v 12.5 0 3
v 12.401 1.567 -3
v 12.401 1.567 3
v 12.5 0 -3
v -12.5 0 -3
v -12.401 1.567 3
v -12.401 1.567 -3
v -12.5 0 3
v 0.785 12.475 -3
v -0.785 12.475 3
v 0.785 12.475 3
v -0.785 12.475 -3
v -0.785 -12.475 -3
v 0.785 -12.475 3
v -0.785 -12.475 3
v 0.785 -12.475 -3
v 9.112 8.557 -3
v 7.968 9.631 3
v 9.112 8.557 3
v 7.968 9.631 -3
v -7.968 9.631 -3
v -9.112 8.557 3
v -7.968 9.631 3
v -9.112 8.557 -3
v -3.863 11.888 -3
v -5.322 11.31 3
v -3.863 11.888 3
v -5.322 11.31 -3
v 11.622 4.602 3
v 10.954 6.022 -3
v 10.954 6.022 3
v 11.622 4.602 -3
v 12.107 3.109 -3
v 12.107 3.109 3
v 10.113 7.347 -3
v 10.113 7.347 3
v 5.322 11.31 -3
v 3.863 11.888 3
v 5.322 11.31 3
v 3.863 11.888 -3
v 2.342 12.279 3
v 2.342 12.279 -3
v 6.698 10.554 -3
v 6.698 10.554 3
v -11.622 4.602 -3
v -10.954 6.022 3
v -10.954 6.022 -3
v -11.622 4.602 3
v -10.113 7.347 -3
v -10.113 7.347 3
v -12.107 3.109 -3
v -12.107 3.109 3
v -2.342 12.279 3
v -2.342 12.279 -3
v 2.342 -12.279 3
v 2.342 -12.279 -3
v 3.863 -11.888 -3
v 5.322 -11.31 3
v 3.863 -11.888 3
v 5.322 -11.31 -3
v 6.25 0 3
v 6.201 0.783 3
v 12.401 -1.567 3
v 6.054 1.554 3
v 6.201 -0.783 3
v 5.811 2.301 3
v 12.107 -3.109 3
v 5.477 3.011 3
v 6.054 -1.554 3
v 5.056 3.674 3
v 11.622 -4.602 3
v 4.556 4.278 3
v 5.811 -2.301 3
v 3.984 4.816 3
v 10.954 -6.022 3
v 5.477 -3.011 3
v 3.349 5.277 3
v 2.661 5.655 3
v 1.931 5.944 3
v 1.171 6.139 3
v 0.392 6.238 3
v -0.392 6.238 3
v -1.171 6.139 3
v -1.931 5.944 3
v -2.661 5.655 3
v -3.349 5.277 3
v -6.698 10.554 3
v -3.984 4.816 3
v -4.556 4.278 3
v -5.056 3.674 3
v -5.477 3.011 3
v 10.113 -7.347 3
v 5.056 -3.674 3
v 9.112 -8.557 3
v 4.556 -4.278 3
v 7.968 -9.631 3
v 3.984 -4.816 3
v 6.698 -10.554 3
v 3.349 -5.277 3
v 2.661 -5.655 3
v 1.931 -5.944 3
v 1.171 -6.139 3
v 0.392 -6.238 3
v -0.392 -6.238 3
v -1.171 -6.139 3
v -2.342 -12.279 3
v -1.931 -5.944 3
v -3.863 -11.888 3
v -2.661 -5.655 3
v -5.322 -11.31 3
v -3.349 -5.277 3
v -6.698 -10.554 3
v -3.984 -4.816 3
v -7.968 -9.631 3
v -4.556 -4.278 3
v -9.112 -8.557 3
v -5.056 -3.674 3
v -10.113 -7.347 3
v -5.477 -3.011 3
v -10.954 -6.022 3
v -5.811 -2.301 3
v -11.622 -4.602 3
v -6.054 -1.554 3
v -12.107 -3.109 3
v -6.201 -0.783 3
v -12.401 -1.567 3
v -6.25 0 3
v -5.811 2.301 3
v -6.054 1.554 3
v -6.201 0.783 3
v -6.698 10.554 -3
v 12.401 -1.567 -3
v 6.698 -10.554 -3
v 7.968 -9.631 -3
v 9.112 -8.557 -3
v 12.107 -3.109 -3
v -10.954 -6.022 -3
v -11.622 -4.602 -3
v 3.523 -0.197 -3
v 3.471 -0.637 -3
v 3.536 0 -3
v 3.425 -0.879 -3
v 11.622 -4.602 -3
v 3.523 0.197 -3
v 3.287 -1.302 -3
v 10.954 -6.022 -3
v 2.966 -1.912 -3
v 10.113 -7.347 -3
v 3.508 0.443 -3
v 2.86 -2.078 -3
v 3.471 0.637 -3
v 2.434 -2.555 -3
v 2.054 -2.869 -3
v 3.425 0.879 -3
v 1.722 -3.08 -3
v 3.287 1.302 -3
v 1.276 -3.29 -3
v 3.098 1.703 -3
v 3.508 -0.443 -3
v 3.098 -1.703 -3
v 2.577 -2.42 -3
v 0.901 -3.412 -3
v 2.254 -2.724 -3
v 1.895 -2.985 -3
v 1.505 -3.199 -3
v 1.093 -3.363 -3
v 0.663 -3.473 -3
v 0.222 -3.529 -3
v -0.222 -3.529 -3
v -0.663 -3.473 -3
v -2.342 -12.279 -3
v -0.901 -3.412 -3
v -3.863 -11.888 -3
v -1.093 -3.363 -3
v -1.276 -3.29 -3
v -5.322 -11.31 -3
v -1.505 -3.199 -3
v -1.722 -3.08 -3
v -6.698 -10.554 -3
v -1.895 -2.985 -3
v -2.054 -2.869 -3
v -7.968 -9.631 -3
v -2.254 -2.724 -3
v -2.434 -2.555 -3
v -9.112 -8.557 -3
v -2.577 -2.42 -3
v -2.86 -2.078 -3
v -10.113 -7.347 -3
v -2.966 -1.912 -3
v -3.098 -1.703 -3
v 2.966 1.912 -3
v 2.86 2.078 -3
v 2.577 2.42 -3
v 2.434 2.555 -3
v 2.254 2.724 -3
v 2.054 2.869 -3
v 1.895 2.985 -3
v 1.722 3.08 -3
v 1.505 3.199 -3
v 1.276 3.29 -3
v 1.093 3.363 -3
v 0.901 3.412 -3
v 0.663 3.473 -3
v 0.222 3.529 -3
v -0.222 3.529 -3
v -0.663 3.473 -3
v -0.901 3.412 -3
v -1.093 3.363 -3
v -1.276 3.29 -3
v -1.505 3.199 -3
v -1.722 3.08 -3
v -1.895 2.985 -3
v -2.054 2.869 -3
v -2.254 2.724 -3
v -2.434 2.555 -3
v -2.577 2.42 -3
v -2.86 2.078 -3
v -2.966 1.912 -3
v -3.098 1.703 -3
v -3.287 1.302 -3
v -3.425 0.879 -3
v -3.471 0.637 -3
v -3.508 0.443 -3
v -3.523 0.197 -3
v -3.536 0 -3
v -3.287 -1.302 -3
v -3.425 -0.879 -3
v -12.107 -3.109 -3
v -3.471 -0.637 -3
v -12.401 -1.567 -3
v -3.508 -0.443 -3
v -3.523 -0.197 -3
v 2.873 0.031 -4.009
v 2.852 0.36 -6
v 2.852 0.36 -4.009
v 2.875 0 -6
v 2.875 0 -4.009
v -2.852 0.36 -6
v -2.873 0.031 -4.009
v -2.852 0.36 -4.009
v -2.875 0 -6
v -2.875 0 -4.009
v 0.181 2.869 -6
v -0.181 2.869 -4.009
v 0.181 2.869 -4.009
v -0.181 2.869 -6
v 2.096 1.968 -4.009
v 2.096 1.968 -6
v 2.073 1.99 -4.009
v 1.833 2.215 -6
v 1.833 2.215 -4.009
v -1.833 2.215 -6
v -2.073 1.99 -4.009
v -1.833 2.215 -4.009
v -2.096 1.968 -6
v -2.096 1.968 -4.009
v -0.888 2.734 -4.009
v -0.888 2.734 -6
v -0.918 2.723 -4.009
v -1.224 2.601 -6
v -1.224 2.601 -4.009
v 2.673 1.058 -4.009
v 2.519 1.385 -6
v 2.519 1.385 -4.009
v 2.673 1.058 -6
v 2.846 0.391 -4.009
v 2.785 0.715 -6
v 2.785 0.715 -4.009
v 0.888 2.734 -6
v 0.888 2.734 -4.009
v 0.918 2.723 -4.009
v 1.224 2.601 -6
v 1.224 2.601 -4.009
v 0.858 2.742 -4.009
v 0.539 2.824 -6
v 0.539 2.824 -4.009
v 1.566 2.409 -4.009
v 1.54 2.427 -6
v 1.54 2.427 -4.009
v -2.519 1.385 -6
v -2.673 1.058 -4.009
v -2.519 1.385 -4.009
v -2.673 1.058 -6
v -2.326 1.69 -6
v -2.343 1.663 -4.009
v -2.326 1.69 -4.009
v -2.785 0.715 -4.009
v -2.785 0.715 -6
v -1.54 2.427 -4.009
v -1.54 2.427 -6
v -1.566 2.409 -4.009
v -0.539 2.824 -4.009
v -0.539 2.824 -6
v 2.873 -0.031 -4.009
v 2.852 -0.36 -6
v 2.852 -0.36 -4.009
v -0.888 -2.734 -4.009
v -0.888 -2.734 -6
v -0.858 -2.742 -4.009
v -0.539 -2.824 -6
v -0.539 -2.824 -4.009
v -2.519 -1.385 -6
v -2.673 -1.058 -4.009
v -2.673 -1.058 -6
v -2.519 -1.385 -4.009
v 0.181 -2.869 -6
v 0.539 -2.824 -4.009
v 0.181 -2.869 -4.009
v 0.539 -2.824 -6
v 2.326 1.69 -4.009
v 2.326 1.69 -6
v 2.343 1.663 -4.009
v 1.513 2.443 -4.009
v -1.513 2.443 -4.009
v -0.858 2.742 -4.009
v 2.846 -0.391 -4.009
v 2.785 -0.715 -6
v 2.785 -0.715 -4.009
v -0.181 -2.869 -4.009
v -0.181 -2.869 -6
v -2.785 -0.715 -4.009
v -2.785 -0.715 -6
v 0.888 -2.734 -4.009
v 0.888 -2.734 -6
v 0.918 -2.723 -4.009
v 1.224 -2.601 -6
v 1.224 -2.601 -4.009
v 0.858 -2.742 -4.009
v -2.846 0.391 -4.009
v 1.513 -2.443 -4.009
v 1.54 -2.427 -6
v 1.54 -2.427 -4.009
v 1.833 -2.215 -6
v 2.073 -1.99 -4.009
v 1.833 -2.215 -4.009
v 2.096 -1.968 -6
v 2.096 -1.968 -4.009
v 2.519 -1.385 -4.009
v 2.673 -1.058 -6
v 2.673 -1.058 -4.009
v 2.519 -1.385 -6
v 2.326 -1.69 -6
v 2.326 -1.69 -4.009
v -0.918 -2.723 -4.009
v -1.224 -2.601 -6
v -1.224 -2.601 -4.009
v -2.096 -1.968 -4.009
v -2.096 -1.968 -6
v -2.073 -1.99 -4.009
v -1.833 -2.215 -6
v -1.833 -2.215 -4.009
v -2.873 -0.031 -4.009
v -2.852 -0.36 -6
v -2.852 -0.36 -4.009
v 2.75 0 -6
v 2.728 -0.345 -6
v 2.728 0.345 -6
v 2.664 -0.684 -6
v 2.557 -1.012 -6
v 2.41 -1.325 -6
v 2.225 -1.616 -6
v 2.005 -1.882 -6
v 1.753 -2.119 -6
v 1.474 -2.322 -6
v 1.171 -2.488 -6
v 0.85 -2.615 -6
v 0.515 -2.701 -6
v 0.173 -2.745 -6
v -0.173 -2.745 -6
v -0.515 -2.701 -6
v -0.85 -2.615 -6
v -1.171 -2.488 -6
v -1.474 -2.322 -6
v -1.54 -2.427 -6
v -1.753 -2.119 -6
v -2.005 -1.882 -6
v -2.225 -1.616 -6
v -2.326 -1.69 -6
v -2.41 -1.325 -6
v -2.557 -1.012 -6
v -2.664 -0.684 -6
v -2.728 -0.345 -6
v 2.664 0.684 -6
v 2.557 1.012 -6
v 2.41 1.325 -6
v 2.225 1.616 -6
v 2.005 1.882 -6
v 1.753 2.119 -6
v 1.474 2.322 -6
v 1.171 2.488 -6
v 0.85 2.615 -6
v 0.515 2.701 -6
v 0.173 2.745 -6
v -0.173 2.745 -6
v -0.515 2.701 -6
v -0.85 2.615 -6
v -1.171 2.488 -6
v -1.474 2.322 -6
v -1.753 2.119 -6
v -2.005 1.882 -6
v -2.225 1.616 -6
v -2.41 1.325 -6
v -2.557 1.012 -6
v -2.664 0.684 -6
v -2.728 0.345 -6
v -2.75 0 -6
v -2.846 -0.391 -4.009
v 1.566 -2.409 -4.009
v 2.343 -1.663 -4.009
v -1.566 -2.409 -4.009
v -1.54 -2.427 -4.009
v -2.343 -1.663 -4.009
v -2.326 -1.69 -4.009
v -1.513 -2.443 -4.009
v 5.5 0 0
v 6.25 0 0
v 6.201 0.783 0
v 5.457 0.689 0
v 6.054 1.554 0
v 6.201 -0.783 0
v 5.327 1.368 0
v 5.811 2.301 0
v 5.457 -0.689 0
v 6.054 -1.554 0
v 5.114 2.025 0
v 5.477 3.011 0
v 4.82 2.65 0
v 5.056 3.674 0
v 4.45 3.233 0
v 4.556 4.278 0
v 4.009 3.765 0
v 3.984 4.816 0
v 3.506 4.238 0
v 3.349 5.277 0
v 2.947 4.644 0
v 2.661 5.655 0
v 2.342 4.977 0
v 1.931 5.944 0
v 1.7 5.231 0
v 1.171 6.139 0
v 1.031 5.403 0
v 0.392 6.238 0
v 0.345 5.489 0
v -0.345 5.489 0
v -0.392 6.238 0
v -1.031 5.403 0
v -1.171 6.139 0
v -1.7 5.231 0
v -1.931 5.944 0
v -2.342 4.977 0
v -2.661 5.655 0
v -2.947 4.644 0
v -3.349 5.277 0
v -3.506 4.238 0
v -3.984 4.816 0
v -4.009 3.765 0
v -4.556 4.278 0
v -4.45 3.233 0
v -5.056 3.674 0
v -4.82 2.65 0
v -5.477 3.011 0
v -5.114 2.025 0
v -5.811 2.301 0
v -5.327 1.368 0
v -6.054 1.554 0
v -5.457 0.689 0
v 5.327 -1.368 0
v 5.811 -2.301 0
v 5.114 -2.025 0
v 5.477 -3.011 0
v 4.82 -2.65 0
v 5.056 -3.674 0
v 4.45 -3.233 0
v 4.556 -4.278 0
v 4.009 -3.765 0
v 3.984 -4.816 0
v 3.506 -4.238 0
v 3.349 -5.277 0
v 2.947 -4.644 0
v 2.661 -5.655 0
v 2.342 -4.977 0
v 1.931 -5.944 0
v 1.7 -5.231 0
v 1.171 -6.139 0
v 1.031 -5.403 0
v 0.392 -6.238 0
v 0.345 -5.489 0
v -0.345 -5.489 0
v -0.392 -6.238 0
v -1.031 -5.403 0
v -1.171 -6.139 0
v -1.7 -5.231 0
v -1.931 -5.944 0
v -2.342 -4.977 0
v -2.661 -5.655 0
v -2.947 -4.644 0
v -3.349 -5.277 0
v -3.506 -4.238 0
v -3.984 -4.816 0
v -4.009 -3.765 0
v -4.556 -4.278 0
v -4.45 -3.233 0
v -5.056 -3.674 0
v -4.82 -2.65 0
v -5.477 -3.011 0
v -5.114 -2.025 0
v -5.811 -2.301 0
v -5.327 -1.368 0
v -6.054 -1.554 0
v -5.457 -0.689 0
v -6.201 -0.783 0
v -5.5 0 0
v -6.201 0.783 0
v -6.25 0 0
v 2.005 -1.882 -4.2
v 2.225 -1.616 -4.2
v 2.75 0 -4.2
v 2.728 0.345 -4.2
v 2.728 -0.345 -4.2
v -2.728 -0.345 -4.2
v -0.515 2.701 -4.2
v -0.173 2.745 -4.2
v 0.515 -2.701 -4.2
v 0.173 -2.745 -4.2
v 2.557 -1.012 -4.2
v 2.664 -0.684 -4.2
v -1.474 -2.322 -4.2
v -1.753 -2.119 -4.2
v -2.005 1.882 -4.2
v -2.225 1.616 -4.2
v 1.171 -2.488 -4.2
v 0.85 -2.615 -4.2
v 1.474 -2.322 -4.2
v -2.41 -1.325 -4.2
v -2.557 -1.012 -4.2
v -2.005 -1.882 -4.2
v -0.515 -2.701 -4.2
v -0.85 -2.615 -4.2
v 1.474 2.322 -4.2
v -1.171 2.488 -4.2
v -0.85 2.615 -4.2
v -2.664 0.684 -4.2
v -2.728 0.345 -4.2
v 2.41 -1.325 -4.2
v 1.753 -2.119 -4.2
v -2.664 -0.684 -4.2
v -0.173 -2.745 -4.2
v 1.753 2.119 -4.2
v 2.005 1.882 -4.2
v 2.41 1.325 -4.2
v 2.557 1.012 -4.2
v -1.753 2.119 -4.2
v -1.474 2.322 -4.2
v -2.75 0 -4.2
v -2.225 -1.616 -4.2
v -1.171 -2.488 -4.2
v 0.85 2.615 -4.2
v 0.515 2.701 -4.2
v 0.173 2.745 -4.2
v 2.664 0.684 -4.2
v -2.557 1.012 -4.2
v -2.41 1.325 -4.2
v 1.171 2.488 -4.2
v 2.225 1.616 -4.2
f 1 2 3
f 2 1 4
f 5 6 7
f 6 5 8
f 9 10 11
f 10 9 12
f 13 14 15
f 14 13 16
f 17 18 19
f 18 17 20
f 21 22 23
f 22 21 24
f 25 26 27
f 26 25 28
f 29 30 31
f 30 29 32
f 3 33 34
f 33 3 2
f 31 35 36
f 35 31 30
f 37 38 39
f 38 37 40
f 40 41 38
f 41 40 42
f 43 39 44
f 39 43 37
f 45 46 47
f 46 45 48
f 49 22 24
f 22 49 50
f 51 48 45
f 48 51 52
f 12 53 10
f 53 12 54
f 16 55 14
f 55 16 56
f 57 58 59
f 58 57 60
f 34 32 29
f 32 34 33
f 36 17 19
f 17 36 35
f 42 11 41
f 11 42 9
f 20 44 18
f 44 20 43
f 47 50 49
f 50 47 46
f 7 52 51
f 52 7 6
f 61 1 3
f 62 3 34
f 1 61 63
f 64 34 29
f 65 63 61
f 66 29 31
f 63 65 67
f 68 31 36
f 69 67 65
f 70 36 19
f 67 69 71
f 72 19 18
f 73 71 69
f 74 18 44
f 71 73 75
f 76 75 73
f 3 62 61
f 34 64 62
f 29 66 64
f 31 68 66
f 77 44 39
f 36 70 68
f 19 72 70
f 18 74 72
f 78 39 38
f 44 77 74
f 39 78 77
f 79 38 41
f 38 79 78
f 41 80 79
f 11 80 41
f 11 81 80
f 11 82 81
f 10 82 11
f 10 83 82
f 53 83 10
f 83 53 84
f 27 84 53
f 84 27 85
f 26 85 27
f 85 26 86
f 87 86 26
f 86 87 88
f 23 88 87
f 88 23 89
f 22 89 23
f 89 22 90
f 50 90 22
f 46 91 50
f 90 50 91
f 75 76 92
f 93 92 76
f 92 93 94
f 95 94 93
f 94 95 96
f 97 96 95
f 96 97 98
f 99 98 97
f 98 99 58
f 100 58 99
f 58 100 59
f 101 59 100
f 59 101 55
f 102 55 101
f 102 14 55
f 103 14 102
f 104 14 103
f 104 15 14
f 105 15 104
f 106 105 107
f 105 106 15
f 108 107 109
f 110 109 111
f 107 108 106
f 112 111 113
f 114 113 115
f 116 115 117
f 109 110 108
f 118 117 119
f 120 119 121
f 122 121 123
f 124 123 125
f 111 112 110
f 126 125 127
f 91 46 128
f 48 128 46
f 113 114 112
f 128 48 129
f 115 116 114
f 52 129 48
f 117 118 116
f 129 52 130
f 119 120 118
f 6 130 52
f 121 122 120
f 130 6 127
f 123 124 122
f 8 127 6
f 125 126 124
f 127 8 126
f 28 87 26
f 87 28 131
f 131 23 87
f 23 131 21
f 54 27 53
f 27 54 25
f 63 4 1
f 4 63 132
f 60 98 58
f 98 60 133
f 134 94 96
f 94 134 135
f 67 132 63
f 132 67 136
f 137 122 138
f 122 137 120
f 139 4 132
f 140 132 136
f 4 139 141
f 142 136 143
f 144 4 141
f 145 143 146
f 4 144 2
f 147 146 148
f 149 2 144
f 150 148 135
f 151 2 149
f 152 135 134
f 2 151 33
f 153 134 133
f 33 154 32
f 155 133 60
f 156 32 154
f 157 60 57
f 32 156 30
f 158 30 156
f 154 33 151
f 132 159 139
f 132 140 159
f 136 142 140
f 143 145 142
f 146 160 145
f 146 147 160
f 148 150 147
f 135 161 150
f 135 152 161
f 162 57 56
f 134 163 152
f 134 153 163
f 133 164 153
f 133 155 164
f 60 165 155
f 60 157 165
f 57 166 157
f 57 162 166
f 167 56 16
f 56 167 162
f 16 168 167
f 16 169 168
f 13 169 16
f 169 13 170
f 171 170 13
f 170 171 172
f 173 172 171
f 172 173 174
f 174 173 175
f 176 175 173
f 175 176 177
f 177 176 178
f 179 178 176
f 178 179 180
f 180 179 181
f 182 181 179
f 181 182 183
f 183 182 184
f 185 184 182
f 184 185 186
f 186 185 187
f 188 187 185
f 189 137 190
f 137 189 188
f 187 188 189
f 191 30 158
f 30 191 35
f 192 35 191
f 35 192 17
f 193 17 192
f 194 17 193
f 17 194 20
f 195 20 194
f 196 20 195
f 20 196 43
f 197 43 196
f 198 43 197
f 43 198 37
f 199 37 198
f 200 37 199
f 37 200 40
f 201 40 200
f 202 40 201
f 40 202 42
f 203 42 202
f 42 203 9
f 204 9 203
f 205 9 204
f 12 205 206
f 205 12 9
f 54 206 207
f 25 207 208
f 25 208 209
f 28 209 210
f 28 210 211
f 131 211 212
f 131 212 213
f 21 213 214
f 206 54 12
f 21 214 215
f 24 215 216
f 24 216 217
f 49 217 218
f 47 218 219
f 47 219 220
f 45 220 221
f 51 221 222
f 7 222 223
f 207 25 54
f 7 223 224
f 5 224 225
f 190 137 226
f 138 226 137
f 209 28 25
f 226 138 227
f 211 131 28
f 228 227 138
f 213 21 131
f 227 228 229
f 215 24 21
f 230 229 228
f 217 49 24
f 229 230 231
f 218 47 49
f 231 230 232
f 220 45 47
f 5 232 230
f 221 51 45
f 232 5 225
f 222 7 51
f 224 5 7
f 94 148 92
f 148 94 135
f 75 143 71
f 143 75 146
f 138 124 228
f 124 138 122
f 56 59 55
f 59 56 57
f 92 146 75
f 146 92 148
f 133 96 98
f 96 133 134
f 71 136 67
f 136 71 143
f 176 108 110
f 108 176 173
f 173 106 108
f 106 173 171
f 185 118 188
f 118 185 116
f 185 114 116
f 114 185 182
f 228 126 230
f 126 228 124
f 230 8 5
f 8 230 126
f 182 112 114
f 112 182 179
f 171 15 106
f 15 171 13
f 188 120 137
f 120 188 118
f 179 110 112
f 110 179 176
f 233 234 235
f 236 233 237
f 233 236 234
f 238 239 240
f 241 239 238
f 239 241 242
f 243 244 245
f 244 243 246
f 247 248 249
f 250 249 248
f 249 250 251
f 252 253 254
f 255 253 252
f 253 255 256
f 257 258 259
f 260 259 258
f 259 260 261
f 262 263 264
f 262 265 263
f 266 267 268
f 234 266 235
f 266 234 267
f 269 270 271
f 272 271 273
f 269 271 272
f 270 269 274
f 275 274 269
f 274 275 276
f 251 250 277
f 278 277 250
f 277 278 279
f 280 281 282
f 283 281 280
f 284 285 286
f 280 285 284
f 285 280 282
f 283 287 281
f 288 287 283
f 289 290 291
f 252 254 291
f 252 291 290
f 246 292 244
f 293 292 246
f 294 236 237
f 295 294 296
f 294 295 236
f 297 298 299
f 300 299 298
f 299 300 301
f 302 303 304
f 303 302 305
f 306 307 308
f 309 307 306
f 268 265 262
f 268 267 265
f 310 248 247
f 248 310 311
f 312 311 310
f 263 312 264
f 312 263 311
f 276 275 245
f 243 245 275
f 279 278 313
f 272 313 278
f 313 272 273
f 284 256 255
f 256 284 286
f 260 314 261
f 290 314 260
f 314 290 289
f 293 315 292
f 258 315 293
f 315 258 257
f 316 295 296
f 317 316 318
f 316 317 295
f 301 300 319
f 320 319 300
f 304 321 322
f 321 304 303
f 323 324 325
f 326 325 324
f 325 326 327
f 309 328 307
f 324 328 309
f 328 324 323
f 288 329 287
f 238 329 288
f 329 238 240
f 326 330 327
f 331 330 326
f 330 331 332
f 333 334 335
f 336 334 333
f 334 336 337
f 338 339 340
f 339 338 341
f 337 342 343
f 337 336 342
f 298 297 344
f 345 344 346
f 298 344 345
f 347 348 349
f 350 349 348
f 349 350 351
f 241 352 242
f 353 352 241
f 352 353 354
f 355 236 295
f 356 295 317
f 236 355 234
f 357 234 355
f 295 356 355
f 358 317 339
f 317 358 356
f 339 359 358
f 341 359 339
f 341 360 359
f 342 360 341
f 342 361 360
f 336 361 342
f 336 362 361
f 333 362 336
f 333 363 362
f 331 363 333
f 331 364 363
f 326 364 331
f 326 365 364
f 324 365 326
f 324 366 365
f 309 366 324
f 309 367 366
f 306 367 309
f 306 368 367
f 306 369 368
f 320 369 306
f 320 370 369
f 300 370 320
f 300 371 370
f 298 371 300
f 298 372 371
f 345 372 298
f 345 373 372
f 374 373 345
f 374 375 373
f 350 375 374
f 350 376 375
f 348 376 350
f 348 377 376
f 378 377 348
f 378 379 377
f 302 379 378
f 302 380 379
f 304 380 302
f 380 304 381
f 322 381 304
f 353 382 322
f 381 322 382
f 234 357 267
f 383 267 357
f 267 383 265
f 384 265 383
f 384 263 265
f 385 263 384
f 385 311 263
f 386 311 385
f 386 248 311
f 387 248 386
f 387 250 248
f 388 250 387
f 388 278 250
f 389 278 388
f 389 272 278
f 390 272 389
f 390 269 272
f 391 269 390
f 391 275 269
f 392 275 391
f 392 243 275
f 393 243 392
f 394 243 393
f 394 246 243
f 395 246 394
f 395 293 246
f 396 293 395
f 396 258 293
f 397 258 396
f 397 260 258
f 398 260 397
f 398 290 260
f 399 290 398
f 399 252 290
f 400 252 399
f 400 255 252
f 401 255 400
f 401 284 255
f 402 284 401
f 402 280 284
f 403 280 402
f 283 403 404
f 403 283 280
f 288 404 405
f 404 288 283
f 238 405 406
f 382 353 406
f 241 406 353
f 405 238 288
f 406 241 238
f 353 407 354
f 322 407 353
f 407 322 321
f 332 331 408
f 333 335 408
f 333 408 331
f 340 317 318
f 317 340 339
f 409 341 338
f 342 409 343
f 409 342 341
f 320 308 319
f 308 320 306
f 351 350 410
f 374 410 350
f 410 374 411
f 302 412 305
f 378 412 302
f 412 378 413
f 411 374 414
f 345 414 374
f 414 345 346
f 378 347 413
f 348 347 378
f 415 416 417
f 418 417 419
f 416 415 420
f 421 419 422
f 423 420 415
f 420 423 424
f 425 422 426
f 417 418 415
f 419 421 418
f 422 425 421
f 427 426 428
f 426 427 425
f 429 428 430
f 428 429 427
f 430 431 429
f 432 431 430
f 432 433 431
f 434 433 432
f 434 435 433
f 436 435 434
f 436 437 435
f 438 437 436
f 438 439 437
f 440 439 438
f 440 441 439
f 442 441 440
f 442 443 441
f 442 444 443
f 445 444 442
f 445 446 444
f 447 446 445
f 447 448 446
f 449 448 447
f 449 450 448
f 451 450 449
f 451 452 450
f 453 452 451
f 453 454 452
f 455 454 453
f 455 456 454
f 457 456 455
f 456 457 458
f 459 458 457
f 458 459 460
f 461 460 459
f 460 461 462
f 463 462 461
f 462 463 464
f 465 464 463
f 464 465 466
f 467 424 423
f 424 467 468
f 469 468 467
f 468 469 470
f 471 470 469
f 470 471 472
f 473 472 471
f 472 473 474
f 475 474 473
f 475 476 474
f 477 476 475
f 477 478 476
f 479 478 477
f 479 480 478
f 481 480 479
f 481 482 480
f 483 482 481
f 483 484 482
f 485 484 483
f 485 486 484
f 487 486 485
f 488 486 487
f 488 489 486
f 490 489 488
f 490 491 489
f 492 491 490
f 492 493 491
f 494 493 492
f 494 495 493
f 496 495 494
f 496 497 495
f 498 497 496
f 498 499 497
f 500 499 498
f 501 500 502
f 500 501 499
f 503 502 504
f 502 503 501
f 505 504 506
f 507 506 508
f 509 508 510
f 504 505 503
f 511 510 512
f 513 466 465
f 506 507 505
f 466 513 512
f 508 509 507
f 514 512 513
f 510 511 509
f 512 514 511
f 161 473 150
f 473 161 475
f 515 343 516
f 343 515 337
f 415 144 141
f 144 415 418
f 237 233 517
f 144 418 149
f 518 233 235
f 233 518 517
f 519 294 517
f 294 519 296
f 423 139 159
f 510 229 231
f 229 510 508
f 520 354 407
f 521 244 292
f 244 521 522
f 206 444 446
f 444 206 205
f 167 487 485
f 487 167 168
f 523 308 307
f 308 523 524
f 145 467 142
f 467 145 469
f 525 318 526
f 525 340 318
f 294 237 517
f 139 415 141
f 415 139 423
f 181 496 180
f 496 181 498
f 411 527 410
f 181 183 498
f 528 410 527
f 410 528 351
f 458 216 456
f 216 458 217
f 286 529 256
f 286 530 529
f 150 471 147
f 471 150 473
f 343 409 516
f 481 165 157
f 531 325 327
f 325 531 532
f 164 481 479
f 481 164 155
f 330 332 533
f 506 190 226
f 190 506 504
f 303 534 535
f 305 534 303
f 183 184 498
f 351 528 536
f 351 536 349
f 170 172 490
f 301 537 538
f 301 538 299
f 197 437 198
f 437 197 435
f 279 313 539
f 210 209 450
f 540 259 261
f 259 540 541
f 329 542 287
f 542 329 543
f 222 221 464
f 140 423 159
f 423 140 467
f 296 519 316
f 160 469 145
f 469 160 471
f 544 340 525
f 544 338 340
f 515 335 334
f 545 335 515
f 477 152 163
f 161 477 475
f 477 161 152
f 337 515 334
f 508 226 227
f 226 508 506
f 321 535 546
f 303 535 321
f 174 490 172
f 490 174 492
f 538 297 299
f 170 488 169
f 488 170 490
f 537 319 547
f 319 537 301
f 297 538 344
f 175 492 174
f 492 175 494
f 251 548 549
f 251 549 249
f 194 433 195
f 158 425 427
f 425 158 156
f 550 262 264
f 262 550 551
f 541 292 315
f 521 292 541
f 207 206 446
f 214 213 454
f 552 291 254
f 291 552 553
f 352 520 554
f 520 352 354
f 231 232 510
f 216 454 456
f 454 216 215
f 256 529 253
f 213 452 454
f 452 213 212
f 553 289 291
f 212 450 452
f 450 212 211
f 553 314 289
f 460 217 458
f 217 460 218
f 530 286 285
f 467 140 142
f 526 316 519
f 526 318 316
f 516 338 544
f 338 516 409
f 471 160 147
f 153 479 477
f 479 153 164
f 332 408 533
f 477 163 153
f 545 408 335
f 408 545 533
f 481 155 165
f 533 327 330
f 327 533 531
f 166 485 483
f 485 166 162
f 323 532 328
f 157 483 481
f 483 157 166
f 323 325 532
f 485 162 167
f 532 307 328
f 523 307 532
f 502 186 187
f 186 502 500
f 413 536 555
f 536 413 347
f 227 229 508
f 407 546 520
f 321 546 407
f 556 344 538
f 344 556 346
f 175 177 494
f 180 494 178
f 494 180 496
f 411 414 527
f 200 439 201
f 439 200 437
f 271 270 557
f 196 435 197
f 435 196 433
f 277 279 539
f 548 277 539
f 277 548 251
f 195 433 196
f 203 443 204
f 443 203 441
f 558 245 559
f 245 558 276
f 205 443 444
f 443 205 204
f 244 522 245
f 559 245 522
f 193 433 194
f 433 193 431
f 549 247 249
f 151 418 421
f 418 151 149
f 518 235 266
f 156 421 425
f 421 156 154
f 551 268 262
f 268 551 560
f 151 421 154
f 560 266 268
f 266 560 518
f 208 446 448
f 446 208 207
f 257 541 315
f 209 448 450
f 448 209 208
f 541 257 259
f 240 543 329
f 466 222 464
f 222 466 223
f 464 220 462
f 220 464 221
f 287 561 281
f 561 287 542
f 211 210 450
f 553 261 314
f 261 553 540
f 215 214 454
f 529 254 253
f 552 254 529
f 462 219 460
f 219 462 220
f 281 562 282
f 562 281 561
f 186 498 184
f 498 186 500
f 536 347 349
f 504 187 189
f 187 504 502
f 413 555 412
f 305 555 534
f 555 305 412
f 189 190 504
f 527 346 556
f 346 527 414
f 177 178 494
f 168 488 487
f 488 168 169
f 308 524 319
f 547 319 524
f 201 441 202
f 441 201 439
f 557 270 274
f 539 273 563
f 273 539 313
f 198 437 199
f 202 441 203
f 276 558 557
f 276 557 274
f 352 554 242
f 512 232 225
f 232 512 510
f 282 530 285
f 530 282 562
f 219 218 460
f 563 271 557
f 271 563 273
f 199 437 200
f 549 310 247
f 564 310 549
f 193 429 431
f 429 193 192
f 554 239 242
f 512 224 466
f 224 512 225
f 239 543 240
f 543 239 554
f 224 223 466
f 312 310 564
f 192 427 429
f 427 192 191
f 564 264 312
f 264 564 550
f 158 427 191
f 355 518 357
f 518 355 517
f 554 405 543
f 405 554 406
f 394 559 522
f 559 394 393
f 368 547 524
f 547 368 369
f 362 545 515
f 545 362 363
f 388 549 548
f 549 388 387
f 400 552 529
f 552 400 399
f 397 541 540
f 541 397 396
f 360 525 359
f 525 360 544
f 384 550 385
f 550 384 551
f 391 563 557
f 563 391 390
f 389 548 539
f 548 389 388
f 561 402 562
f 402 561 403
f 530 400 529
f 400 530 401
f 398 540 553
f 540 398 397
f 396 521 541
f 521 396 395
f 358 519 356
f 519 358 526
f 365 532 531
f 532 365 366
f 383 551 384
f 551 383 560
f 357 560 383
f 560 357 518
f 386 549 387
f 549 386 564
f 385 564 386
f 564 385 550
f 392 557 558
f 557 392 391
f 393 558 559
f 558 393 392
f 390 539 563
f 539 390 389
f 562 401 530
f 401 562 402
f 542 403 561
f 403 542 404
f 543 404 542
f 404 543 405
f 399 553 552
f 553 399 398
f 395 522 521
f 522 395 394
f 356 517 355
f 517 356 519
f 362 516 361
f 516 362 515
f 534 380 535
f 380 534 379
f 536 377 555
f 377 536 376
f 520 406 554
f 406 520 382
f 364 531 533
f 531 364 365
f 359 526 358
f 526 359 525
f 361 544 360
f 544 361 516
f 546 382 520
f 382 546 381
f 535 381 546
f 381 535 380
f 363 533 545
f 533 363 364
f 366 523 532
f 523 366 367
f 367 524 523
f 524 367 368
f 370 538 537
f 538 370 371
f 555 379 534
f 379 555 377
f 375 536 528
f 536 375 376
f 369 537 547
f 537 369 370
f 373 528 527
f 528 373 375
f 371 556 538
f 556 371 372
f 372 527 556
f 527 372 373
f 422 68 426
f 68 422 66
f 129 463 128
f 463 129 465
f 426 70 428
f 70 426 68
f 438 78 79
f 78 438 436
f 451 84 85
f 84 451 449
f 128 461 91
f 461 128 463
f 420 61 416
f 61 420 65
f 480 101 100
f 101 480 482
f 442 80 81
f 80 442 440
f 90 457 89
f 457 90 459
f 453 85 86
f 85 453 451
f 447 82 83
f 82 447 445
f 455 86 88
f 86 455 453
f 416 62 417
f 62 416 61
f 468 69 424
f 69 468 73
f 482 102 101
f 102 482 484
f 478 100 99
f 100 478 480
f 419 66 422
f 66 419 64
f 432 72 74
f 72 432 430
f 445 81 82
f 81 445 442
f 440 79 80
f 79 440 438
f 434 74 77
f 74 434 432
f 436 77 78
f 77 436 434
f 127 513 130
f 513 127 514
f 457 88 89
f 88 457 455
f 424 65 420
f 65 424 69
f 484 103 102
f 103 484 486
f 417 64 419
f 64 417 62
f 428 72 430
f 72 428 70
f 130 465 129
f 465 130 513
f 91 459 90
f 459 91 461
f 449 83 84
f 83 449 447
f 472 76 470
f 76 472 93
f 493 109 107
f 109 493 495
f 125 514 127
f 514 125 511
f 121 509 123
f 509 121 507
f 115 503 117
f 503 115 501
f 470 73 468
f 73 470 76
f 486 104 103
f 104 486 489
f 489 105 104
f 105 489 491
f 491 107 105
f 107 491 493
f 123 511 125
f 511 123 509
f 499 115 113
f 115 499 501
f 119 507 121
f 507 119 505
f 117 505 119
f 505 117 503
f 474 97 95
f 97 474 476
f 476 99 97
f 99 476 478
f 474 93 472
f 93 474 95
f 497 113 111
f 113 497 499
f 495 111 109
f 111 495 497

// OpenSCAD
$fn = 50;


difference() {
	union() {
		translate(v = [0, 0, -3.0000000000]) {
			cylinder(h = 6, r = 12.5000000000);
		}
		#translate(v = [0, 0, -6.0000000000]) {
			cylinder(h = 6, r = 2.8750000000);
		}
	}
	union() {
		translate(v = [0, 0, 0]) {
			rotate(a = [0, 0, 0]) {
				difference() {
					union() {
						translate(v = [0, 0, -6.0000000000]) {
							cylinder(h = 6, r = 2.2500000000);
						}
						translate(v = [0, 0, -4.2000000000]) {
							cylinder(h = 4.2000000000, r1 = 2.7500000000, r2 = 5.5000000000);
						}
						translate(v = [0, 0, -6.0000000000]) {
							cylinder(h = 6, r = 2.7500000000);
						}
						translate(v = [0, 0, -6.0000000000]) {
							cylinder(h = 6, r = 2.2500000000);
						}
					}
					union();
				}
			}
		}
		#cylinder(h = 3, r = 6.2500000000);
	}
}
